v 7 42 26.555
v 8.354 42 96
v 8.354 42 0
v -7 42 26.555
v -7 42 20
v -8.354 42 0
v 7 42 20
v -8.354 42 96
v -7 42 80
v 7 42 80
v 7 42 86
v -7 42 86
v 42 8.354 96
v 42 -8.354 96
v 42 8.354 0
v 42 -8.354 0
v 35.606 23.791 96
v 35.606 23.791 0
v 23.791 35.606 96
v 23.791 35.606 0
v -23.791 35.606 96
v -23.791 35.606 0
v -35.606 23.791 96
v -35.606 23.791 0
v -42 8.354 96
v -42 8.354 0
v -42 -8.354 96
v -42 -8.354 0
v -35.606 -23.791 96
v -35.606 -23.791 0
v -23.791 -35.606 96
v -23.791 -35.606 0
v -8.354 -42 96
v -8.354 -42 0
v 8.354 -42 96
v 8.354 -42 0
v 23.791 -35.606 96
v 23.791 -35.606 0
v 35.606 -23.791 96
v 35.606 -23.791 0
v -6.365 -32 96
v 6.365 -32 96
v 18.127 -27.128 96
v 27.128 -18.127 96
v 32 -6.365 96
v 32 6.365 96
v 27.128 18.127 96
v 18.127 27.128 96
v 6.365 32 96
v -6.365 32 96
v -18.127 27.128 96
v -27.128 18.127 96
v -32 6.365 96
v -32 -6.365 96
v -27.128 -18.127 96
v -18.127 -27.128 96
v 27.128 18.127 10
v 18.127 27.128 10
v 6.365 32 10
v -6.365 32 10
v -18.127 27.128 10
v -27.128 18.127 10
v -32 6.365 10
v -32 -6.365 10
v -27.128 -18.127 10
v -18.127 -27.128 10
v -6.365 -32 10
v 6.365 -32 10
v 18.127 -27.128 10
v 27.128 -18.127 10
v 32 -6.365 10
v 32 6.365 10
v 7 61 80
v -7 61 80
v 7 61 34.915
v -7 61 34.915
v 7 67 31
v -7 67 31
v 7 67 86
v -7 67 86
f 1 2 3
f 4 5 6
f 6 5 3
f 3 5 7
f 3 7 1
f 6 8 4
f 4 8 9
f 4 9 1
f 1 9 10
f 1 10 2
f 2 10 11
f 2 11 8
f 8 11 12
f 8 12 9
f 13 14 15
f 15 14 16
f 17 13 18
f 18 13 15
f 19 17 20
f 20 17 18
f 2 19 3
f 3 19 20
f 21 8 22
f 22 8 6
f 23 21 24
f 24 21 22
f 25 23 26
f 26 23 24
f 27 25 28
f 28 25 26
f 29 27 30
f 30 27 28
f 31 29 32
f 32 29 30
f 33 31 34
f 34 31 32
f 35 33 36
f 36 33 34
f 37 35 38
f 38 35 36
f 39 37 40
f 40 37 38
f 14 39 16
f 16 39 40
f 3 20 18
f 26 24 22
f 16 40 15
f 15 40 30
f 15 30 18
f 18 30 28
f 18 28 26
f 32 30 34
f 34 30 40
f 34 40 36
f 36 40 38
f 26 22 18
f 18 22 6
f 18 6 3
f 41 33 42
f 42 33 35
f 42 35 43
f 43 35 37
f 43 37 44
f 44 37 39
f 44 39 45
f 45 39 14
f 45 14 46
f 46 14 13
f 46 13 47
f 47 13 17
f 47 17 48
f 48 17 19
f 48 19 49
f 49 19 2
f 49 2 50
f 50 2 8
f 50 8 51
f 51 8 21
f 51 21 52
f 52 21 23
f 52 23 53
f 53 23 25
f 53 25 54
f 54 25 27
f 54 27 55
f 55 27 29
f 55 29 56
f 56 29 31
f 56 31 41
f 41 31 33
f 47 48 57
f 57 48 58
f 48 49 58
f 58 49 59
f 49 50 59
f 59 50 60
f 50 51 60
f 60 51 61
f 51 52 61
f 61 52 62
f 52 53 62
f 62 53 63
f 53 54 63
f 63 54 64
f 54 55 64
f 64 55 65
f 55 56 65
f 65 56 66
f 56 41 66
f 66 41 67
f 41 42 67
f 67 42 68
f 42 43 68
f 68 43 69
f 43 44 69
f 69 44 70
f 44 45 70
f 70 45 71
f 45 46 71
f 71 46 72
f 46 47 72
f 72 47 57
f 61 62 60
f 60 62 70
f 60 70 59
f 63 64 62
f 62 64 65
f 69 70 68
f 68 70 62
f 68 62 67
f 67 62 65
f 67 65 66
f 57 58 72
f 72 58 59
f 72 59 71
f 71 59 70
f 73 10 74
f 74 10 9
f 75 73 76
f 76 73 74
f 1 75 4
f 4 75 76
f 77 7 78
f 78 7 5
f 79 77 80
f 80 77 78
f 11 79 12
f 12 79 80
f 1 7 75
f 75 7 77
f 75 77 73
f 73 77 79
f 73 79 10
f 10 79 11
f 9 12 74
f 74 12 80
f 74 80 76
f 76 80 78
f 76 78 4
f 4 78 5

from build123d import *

# Parameters (mm, degrees)
BOSS_EXTRUDE1_DEPTH = 10
BOSS_EXTRUDE2_START = 10
BOSS_EXTRUDE2_DEPTH = 86
BOSS_EXTRUDE3_DEPTH = 7


with BuildPart() as part:
    # Sketch1 → Boss-Extrude1 (new body)
    # profile 1 of 2: a face of its own
    with BuildSketch(Plane.XY):
        Polygon((42, -8.35431943), (42, 8.35431943), (35.605880731, 23.791088889), (23.791088889, 35.605880731), (8.35431943, 42), (-8.35431943, 42), (-23.791088889, 35.605880731), (-35.605880731, 23.791088889), (-42, 8.35431943), (-42, -8.35431943), (-35.605880731, -23.791088889), (-23.791088889, -35.605880731), (-8.35431943, -42), (8.35431943, -42), (23.791088889, -35.605880731), (35.605880731, -23.791088889), align=None)
        Polygon((27.128290081, 18.126543915), (18.126543915, 27.128290081), (6.365195756, 32), (-6.365195756, 32), (-18.126543915, 27.128290081), (-27.128290081, 18.126543915), (-32, 6.365195756), (-32, -6.365195756), (-27.128290081, -18.126543915), (-18.126543915, -27.128290081), (-6.365195756, -32), (6.365195756, -32), (18.126543915, -27.128290081), (27.128290081, -18.126543915), (32, -6.365195756), (32, 6.365195756), align=None, mode=Mode.SUBTRACT)
    # profile 2 of 2: a face of its own
    with BuildSketch(Plane.XY):
        Polygon((32, 6.365195756), (27.128290081, 18.126543915), (18.126543915, 27.128290081), (6.365195756, 32), (-6.365195756, 32), (-18.126543915, 27.128290081), (-27.128290081, 18.126543915), (-32, 6.365195756), (-32, -6.365195756), (-27.128290081, -18.126543915), (-18.126543915, -27.128290081), (-6.365195756, -32), (6.365195756, -32), (18.126543915, -27.128290081), (27.128290081, -18.126543915), (32, -6.365195756), align=None)
    extrude(amount=BOSS_EXTRUDE1_DEPTH)

    # Sketch1<5> → Boss-Extrude2 (add)
    with BuildSketch(Plane.XY.offset(BOSS_EXTRUDE2_START)):
        Polygon((42, -8.35431943), (42, 8.35431943), (35.605880731, 23.791088889), (23.791088889, 35.605880731), (8.35431943, 42), (-8.35431943, 42), (-23.791088889, 35.605880731), (-35.605880731, 23.791088889), (-42, 8.35431943), (-42, -8.35431943), (-35.605880731, -23.791088889), (-23.791088889, -35.605880731), (-8.35431943, -42), (8.35431943, -42), (23.791088889, -35.605880731), (35.605880731, -23.791088889), align=None)
        Polygon((27.128290081, 18.126543915), (18.126543915, 27.128290081), (6.365195756, 32), (-6.365195756, 32), (-18.126543915, 27.128290081), (-27.128290081, 18.126543915), (-32, 6.365195756), (-32, -6.365195756), (-27.128290081, -18.126543915), (-18.126543915, -27.128290081), (-6.365195756, -32), (6.365195756, -32), (18.126543915, -27.128290081), (27.128290081, -18.126543915), (32, -6.365195756), (32, 6.365195756), align=None, mode=Mode.SUBTRACT)
    extrude(amount=BOSS_EXTRUDE2_DEPTH)

    # Sketch3 → Boss-Extrude3 (add, symmetric)
    with BuildSketch(Plane(origin=(0, 0, 0), x_dir=(0, 0, -1), z_dir=(1, 0, 0))):
        Polygon((-86, 42), (-86, 67), (-31, 67), (-20, 42), (-26.555120136, 42), (-34.915120136, 61), (-80, 61), (-80, 42), align=None)
    extrude(amount=BOSS_EXTRUDE3_DEPTH, both=True)


solid = part.part
